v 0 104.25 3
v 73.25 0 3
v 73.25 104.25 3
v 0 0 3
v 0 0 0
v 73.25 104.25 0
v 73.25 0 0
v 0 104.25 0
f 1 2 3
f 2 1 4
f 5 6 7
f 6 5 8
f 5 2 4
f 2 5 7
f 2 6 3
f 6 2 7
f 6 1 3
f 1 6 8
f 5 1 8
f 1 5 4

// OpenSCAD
length = 74 - .75;
width = 105 - .75;
height = 3;
cube([length, width, height]);



        
